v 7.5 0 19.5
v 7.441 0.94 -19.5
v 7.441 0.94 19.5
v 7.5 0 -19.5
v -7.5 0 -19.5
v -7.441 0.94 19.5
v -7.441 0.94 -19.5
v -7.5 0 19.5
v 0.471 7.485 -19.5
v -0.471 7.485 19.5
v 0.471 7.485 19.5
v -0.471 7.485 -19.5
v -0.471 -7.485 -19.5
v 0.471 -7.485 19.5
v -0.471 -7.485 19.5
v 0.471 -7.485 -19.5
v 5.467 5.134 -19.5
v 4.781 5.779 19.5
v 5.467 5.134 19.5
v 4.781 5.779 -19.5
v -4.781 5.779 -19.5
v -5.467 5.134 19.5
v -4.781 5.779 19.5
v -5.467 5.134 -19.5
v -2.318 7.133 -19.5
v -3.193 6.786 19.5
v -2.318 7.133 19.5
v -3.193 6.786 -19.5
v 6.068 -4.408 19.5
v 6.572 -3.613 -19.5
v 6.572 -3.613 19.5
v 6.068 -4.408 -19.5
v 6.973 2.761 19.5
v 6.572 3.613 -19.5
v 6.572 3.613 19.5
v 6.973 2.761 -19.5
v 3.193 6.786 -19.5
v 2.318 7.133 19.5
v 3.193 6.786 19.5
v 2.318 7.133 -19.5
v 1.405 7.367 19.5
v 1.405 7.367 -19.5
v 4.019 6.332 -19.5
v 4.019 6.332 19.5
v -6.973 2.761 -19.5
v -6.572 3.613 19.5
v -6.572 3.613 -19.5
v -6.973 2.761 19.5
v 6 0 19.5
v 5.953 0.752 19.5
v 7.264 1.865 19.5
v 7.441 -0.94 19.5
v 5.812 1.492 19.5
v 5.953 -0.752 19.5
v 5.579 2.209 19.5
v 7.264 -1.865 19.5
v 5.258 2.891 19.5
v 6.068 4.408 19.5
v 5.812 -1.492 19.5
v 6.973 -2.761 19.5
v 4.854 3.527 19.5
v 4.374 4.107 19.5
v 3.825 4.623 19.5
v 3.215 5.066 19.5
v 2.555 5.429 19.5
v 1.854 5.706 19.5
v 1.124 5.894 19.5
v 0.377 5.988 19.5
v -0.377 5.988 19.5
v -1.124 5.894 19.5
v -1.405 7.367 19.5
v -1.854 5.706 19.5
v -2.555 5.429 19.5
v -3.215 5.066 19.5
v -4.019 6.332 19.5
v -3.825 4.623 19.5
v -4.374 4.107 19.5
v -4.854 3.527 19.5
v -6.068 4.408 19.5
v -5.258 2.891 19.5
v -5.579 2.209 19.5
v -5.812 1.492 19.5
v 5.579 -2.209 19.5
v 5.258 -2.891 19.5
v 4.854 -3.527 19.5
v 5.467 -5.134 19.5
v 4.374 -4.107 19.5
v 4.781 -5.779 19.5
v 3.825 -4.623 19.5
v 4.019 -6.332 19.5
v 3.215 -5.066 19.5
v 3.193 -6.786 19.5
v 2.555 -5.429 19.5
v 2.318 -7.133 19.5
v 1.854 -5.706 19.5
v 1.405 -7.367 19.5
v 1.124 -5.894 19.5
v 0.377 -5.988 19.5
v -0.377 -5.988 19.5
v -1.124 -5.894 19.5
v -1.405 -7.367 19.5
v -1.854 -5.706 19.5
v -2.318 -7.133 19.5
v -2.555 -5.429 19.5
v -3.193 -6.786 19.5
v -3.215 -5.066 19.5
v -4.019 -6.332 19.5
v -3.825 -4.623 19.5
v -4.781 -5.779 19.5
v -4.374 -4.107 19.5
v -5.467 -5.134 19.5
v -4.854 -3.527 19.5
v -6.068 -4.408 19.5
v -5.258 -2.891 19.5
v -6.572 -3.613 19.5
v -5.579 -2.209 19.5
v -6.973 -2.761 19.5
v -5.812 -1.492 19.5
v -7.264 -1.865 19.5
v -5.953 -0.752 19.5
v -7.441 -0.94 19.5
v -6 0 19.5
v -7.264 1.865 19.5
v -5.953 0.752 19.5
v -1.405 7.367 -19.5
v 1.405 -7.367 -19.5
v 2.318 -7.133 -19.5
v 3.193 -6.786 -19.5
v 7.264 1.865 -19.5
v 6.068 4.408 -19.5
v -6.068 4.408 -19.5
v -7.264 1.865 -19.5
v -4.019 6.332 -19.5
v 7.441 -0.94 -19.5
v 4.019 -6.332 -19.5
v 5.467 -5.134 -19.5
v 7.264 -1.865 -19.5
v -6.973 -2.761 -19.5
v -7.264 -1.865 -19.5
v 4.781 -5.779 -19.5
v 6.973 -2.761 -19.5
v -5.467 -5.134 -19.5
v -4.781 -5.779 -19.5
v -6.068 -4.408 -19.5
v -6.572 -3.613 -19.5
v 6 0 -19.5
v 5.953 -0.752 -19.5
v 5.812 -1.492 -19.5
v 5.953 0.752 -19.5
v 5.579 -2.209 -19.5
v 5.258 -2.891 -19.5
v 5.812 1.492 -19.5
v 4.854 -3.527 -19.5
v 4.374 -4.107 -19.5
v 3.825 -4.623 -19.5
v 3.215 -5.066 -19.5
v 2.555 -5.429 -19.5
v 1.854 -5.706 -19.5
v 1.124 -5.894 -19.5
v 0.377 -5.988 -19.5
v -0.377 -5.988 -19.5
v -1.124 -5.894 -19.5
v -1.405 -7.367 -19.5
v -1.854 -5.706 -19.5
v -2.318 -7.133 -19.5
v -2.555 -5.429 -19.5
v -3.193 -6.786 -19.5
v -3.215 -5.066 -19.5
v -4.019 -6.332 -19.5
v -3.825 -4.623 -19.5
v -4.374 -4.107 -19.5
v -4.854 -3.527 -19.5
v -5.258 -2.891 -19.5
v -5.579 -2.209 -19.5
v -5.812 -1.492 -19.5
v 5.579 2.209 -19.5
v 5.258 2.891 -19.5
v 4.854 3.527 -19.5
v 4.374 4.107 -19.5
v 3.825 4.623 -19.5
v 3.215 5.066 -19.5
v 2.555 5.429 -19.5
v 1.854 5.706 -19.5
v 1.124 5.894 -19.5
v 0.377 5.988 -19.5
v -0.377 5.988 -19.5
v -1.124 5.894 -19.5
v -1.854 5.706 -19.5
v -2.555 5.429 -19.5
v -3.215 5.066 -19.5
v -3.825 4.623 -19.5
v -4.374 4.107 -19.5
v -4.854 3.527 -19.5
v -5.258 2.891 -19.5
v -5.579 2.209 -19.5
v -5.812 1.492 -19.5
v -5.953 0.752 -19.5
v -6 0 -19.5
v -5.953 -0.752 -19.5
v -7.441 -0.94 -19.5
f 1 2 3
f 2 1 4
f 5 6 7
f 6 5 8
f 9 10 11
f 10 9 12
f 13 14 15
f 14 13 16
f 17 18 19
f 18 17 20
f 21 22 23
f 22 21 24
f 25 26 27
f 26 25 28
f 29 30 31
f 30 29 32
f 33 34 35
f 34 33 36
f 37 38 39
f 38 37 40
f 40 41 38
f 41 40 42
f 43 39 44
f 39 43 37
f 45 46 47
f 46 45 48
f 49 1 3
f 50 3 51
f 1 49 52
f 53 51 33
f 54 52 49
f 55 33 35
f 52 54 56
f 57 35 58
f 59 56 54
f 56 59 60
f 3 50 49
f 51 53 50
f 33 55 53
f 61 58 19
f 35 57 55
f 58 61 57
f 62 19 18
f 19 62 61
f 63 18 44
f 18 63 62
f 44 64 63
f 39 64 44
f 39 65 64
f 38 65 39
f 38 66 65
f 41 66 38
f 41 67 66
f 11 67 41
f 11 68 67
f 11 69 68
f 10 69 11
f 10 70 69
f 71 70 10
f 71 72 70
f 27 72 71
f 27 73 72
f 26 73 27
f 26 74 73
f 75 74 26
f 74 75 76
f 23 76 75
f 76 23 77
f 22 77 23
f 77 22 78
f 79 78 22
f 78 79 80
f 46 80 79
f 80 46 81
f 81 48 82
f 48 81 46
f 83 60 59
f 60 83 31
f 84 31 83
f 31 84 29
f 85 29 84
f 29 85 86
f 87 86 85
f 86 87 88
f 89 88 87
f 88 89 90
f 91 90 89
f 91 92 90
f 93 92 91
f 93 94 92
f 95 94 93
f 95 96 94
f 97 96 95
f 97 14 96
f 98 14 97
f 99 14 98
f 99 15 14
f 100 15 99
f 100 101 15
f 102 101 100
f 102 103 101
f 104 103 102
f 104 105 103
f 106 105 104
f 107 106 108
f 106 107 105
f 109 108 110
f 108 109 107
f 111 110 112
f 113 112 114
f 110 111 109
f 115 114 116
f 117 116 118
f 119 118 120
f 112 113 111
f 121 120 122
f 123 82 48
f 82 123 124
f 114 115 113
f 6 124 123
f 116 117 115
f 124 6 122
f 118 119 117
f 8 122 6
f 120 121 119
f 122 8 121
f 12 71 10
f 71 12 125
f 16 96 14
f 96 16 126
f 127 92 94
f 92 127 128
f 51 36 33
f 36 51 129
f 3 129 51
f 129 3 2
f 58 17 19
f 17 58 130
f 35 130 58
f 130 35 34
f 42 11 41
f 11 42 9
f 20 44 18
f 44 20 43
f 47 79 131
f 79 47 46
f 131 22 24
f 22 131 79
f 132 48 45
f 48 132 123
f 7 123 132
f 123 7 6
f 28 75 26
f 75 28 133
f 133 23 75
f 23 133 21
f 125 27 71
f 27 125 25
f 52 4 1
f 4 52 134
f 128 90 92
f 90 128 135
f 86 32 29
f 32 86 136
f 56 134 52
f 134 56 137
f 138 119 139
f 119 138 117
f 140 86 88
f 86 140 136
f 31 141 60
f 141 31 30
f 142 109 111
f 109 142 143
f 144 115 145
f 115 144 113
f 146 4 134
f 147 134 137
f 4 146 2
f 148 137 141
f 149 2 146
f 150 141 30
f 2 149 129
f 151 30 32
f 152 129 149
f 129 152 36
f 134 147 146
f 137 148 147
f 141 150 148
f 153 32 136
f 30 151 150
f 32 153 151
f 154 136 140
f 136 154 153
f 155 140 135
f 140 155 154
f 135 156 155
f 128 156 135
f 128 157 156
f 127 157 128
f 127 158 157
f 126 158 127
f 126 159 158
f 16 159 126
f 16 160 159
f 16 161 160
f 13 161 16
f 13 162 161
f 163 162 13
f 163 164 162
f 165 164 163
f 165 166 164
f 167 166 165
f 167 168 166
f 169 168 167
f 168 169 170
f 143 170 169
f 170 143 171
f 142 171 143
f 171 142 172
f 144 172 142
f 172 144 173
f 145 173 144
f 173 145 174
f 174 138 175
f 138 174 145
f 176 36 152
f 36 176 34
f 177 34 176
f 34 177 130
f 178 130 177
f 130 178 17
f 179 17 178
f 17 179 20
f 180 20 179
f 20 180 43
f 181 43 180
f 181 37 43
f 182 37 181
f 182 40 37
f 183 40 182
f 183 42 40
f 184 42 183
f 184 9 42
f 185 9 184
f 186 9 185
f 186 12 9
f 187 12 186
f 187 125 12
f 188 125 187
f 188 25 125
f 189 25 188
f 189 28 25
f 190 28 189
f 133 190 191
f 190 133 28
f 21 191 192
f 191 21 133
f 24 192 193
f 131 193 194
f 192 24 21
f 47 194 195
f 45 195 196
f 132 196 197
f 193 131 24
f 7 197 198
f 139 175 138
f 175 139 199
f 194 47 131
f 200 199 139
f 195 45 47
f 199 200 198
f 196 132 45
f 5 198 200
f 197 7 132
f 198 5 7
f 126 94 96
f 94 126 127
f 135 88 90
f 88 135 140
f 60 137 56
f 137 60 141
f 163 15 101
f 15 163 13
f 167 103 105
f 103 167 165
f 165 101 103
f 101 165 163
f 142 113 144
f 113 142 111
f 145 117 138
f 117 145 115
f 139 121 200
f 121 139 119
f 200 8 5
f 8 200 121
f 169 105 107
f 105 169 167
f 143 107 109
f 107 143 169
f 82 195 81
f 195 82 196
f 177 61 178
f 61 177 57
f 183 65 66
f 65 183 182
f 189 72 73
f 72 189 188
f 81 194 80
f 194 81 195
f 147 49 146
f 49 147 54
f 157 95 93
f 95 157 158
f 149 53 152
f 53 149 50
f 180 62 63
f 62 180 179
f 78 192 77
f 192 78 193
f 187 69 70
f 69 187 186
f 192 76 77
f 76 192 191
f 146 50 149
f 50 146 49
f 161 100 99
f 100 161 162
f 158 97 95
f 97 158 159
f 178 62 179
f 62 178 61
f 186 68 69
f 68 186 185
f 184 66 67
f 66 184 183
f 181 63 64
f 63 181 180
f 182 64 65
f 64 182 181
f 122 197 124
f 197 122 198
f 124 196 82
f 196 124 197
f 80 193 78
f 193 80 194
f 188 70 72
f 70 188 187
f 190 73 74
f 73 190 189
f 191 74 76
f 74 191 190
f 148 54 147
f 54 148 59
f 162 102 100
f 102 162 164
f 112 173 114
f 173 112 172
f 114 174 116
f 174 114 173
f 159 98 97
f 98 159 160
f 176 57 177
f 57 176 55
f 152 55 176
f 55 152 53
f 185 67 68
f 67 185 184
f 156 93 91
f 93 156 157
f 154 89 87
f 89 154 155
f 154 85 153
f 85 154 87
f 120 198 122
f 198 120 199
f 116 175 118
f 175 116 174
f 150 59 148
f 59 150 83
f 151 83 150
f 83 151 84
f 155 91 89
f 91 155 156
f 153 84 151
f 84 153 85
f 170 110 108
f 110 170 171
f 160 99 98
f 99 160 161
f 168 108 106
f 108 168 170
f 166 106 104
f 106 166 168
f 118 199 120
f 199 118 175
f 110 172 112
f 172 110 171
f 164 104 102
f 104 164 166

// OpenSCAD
$fn = 50;


difference() {
	union() {
		translate(v = [0, 0, -19.5000000000]) {
			cylinder(h = 39, r = 7.5000000000);
		}
	}
	union() {
		translate(v = [0, 0, -100.0000000000]) {
			cylinder(h = 200, r = 6);
		}
	}
}
